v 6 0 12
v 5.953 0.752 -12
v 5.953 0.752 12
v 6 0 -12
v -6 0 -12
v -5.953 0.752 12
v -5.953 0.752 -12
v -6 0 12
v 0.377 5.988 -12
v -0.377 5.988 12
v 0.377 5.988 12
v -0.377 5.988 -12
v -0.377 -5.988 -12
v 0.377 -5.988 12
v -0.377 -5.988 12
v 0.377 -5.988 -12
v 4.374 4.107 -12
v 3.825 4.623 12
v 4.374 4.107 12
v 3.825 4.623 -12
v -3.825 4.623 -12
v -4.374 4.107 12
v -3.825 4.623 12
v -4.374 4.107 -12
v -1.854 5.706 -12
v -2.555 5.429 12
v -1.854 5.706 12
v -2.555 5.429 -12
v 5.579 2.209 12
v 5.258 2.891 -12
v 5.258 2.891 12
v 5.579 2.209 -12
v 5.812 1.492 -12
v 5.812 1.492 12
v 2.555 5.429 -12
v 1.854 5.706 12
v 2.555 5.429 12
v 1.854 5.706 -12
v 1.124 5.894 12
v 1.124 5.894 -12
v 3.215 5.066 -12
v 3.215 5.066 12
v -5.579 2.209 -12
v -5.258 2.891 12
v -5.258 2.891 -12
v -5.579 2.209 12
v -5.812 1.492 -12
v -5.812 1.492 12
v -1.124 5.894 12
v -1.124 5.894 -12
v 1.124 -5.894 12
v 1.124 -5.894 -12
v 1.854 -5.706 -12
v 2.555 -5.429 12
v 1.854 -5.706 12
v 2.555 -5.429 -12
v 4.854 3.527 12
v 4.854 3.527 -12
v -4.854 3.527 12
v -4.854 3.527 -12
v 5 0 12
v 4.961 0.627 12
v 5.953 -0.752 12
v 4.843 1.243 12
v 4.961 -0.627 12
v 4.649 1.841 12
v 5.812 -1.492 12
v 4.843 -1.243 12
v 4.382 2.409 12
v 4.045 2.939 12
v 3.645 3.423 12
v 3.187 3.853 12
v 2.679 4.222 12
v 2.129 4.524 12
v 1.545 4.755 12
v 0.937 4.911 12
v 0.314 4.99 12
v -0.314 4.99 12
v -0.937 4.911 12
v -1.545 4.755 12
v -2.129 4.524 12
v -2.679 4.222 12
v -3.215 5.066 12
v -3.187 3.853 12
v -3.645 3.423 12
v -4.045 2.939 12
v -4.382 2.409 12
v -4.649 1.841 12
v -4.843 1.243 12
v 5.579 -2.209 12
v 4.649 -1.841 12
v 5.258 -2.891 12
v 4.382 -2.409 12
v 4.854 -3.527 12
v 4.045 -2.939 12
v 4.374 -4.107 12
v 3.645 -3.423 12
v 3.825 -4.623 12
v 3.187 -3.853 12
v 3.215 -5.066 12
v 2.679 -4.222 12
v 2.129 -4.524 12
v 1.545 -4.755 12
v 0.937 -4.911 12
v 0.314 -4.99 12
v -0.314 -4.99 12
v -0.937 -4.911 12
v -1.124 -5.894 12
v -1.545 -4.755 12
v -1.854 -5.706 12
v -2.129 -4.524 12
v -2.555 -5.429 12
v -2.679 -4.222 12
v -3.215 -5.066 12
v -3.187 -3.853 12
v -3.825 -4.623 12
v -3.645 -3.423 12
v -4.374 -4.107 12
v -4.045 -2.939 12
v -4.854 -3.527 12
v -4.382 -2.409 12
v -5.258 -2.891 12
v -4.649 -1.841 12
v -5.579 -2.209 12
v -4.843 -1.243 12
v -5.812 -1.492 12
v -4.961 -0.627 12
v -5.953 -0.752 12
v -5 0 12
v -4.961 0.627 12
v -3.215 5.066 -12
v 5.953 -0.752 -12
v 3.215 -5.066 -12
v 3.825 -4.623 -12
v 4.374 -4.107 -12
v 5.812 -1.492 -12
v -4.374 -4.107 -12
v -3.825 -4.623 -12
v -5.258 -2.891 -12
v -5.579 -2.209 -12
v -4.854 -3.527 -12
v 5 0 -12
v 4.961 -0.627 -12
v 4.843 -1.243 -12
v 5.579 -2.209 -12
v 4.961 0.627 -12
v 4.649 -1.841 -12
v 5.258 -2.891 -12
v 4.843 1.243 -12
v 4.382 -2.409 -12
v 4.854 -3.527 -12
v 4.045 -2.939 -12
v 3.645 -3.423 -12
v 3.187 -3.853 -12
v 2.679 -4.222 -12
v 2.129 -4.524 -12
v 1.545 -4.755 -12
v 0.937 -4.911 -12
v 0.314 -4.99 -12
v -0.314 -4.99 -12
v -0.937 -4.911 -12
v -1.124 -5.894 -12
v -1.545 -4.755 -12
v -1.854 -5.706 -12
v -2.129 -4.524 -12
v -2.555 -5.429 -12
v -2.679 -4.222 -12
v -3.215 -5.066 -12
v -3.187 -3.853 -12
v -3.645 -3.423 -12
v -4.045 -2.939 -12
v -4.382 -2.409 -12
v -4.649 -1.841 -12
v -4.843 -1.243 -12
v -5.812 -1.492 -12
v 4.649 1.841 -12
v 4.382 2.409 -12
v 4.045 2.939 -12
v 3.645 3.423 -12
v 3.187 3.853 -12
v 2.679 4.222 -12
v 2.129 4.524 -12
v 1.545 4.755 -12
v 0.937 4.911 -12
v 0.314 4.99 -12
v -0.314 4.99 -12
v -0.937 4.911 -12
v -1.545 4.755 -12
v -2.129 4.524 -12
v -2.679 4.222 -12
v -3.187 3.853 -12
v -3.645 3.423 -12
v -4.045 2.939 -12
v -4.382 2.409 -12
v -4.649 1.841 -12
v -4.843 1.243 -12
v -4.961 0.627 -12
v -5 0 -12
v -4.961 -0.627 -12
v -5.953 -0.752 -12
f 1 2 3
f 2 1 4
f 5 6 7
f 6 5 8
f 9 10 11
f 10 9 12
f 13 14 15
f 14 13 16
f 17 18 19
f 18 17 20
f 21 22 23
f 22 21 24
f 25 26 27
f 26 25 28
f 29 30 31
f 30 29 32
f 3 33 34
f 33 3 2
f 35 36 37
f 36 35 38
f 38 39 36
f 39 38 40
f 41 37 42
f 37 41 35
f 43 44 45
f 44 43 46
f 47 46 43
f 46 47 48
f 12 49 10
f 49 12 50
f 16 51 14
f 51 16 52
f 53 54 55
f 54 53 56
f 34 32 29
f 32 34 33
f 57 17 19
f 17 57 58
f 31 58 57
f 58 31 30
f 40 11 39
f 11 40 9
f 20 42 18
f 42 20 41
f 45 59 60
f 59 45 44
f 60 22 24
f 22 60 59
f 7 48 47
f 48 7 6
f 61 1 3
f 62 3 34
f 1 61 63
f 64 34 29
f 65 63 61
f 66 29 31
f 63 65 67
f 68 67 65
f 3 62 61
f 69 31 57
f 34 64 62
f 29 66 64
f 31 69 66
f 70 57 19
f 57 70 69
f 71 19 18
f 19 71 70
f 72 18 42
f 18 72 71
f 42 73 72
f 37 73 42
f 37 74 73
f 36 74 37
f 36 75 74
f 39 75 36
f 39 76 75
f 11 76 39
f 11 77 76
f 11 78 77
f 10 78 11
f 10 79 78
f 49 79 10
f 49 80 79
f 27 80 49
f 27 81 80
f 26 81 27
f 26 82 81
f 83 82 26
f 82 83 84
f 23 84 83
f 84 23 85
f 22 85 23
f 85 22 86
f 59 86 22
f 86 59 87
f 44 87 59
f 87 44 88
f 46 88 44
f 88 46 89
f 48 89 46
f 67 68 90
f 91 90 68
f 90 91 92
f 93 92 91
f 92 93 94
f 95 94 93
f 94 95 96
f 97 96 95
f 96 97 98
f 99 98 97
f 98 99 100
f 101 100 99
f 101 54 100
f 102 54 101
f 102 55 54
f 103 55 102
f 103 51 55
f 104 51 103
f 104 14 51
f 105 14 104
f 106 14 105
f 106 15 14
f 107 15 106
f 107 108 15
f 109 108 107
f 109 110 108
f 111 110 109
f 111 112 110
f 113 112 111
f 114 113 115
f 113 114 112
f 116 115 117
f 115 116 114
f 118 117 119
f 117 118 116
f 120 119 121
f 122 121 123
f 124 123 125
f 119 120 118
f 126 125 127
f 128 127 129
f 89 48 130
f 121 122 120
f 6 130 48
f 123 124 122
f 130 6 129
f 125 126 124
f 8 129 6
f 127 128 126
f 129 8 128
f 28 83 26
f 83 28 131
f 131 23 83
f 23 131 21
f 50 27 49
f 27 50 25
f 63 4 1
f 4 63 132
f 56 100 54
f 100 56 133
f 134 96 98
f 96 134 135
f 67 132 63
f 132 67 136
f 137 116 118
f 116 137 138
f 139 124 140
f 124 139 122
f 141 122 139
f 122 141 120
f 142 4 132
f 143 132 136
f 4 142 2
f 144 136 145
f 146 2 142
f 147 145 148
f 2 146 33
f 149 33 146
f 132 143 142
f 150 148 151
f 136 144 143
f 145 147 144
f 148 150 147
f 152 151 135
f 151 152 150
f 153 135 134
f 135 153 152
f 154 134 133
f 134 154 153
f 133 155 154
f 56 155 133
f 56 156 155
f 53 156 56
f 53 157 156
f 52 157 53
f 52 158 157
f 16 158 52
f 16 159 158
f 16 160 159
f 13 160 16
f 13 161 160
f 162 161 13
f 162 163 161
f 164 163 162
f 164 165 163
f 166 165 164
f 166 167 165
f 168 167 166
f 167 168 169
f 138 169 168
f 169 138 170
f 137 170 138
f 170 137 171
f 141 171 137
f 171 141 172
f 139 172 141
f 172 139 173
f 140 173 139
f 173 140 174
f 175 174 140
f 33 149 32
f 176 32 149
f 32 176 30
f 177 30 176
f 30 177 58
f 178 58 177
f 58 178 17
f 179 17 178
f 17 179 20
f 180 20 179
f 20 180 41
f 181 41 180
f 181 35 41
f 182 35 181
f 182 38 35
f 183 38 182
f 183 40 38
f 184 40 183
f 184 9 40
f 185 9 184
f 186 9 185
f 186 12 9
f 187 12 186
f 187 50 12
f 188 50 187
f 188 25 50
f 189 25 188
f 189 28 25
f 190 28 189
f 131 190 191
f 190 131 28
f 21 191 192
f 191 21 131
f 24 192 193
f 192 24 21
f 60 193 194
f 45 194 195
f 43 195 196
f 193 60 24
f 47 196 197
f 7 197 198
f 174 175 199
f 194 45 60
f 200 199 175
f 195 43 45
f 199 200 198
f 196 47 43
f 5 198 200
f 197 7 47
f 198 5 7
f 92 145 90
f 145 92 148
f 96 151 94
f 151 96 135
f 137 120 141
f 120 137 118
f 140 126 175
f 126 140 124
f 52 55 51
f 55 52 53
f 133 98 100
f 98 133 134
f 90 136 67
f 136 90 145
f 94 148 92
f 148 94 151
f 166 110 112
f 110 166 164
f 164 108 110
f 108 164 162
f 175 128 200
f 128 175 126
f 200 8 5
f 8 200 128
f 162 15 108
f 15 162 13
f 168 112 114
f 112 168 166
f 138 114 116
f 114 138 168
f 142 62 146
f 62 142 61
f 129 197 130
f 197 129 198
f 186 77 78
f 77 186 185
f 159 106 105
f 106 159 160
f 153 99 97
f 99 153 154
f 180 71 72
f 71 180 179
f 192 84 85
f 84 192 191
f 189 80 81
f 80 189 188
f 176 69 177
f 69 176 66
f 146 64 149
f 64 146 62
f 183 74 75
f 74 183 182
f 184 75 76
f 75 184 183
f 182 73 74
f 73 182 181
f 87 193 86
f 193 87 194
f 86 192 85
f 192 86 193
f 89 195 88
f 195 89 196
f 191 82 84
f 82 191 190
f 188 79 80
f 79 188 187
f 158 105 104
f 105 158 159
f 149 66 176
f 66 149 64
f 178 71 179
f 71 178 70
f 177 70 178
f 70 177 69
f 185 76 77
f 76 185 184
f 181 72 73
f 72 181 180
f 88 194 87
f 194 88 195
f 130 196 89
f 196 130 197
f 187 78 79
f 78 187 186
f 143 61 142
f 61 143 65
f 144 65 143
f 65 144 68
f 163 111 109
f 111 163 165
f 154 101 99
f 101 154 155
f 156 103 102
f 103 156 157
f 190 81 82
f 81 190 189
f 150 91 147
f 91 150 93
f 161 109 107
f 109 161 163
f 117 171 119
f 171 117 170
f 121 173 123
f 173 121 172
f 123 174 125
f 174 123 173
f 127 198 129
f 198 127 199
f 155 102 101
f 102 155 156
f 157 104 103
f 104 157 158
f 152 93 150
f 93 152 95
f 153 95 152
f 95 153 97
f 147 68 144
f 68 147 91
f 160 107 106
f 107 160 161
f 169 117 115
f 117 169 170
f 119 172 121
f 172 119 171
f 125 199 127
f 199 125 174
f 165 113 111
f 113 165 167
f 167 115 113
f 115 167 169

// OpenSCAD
$fn = 50;


difference() {
	union() {
		translate(v = [0, 0, -12.0000000000]) {
			cylinder(h = 24, r = 6.0000000000);
		}
	}
	union() {
		translate(v = [0, 0, -100.0000000000]) {
			cylinder(h = 200, r = 5);
		}
	}
}
